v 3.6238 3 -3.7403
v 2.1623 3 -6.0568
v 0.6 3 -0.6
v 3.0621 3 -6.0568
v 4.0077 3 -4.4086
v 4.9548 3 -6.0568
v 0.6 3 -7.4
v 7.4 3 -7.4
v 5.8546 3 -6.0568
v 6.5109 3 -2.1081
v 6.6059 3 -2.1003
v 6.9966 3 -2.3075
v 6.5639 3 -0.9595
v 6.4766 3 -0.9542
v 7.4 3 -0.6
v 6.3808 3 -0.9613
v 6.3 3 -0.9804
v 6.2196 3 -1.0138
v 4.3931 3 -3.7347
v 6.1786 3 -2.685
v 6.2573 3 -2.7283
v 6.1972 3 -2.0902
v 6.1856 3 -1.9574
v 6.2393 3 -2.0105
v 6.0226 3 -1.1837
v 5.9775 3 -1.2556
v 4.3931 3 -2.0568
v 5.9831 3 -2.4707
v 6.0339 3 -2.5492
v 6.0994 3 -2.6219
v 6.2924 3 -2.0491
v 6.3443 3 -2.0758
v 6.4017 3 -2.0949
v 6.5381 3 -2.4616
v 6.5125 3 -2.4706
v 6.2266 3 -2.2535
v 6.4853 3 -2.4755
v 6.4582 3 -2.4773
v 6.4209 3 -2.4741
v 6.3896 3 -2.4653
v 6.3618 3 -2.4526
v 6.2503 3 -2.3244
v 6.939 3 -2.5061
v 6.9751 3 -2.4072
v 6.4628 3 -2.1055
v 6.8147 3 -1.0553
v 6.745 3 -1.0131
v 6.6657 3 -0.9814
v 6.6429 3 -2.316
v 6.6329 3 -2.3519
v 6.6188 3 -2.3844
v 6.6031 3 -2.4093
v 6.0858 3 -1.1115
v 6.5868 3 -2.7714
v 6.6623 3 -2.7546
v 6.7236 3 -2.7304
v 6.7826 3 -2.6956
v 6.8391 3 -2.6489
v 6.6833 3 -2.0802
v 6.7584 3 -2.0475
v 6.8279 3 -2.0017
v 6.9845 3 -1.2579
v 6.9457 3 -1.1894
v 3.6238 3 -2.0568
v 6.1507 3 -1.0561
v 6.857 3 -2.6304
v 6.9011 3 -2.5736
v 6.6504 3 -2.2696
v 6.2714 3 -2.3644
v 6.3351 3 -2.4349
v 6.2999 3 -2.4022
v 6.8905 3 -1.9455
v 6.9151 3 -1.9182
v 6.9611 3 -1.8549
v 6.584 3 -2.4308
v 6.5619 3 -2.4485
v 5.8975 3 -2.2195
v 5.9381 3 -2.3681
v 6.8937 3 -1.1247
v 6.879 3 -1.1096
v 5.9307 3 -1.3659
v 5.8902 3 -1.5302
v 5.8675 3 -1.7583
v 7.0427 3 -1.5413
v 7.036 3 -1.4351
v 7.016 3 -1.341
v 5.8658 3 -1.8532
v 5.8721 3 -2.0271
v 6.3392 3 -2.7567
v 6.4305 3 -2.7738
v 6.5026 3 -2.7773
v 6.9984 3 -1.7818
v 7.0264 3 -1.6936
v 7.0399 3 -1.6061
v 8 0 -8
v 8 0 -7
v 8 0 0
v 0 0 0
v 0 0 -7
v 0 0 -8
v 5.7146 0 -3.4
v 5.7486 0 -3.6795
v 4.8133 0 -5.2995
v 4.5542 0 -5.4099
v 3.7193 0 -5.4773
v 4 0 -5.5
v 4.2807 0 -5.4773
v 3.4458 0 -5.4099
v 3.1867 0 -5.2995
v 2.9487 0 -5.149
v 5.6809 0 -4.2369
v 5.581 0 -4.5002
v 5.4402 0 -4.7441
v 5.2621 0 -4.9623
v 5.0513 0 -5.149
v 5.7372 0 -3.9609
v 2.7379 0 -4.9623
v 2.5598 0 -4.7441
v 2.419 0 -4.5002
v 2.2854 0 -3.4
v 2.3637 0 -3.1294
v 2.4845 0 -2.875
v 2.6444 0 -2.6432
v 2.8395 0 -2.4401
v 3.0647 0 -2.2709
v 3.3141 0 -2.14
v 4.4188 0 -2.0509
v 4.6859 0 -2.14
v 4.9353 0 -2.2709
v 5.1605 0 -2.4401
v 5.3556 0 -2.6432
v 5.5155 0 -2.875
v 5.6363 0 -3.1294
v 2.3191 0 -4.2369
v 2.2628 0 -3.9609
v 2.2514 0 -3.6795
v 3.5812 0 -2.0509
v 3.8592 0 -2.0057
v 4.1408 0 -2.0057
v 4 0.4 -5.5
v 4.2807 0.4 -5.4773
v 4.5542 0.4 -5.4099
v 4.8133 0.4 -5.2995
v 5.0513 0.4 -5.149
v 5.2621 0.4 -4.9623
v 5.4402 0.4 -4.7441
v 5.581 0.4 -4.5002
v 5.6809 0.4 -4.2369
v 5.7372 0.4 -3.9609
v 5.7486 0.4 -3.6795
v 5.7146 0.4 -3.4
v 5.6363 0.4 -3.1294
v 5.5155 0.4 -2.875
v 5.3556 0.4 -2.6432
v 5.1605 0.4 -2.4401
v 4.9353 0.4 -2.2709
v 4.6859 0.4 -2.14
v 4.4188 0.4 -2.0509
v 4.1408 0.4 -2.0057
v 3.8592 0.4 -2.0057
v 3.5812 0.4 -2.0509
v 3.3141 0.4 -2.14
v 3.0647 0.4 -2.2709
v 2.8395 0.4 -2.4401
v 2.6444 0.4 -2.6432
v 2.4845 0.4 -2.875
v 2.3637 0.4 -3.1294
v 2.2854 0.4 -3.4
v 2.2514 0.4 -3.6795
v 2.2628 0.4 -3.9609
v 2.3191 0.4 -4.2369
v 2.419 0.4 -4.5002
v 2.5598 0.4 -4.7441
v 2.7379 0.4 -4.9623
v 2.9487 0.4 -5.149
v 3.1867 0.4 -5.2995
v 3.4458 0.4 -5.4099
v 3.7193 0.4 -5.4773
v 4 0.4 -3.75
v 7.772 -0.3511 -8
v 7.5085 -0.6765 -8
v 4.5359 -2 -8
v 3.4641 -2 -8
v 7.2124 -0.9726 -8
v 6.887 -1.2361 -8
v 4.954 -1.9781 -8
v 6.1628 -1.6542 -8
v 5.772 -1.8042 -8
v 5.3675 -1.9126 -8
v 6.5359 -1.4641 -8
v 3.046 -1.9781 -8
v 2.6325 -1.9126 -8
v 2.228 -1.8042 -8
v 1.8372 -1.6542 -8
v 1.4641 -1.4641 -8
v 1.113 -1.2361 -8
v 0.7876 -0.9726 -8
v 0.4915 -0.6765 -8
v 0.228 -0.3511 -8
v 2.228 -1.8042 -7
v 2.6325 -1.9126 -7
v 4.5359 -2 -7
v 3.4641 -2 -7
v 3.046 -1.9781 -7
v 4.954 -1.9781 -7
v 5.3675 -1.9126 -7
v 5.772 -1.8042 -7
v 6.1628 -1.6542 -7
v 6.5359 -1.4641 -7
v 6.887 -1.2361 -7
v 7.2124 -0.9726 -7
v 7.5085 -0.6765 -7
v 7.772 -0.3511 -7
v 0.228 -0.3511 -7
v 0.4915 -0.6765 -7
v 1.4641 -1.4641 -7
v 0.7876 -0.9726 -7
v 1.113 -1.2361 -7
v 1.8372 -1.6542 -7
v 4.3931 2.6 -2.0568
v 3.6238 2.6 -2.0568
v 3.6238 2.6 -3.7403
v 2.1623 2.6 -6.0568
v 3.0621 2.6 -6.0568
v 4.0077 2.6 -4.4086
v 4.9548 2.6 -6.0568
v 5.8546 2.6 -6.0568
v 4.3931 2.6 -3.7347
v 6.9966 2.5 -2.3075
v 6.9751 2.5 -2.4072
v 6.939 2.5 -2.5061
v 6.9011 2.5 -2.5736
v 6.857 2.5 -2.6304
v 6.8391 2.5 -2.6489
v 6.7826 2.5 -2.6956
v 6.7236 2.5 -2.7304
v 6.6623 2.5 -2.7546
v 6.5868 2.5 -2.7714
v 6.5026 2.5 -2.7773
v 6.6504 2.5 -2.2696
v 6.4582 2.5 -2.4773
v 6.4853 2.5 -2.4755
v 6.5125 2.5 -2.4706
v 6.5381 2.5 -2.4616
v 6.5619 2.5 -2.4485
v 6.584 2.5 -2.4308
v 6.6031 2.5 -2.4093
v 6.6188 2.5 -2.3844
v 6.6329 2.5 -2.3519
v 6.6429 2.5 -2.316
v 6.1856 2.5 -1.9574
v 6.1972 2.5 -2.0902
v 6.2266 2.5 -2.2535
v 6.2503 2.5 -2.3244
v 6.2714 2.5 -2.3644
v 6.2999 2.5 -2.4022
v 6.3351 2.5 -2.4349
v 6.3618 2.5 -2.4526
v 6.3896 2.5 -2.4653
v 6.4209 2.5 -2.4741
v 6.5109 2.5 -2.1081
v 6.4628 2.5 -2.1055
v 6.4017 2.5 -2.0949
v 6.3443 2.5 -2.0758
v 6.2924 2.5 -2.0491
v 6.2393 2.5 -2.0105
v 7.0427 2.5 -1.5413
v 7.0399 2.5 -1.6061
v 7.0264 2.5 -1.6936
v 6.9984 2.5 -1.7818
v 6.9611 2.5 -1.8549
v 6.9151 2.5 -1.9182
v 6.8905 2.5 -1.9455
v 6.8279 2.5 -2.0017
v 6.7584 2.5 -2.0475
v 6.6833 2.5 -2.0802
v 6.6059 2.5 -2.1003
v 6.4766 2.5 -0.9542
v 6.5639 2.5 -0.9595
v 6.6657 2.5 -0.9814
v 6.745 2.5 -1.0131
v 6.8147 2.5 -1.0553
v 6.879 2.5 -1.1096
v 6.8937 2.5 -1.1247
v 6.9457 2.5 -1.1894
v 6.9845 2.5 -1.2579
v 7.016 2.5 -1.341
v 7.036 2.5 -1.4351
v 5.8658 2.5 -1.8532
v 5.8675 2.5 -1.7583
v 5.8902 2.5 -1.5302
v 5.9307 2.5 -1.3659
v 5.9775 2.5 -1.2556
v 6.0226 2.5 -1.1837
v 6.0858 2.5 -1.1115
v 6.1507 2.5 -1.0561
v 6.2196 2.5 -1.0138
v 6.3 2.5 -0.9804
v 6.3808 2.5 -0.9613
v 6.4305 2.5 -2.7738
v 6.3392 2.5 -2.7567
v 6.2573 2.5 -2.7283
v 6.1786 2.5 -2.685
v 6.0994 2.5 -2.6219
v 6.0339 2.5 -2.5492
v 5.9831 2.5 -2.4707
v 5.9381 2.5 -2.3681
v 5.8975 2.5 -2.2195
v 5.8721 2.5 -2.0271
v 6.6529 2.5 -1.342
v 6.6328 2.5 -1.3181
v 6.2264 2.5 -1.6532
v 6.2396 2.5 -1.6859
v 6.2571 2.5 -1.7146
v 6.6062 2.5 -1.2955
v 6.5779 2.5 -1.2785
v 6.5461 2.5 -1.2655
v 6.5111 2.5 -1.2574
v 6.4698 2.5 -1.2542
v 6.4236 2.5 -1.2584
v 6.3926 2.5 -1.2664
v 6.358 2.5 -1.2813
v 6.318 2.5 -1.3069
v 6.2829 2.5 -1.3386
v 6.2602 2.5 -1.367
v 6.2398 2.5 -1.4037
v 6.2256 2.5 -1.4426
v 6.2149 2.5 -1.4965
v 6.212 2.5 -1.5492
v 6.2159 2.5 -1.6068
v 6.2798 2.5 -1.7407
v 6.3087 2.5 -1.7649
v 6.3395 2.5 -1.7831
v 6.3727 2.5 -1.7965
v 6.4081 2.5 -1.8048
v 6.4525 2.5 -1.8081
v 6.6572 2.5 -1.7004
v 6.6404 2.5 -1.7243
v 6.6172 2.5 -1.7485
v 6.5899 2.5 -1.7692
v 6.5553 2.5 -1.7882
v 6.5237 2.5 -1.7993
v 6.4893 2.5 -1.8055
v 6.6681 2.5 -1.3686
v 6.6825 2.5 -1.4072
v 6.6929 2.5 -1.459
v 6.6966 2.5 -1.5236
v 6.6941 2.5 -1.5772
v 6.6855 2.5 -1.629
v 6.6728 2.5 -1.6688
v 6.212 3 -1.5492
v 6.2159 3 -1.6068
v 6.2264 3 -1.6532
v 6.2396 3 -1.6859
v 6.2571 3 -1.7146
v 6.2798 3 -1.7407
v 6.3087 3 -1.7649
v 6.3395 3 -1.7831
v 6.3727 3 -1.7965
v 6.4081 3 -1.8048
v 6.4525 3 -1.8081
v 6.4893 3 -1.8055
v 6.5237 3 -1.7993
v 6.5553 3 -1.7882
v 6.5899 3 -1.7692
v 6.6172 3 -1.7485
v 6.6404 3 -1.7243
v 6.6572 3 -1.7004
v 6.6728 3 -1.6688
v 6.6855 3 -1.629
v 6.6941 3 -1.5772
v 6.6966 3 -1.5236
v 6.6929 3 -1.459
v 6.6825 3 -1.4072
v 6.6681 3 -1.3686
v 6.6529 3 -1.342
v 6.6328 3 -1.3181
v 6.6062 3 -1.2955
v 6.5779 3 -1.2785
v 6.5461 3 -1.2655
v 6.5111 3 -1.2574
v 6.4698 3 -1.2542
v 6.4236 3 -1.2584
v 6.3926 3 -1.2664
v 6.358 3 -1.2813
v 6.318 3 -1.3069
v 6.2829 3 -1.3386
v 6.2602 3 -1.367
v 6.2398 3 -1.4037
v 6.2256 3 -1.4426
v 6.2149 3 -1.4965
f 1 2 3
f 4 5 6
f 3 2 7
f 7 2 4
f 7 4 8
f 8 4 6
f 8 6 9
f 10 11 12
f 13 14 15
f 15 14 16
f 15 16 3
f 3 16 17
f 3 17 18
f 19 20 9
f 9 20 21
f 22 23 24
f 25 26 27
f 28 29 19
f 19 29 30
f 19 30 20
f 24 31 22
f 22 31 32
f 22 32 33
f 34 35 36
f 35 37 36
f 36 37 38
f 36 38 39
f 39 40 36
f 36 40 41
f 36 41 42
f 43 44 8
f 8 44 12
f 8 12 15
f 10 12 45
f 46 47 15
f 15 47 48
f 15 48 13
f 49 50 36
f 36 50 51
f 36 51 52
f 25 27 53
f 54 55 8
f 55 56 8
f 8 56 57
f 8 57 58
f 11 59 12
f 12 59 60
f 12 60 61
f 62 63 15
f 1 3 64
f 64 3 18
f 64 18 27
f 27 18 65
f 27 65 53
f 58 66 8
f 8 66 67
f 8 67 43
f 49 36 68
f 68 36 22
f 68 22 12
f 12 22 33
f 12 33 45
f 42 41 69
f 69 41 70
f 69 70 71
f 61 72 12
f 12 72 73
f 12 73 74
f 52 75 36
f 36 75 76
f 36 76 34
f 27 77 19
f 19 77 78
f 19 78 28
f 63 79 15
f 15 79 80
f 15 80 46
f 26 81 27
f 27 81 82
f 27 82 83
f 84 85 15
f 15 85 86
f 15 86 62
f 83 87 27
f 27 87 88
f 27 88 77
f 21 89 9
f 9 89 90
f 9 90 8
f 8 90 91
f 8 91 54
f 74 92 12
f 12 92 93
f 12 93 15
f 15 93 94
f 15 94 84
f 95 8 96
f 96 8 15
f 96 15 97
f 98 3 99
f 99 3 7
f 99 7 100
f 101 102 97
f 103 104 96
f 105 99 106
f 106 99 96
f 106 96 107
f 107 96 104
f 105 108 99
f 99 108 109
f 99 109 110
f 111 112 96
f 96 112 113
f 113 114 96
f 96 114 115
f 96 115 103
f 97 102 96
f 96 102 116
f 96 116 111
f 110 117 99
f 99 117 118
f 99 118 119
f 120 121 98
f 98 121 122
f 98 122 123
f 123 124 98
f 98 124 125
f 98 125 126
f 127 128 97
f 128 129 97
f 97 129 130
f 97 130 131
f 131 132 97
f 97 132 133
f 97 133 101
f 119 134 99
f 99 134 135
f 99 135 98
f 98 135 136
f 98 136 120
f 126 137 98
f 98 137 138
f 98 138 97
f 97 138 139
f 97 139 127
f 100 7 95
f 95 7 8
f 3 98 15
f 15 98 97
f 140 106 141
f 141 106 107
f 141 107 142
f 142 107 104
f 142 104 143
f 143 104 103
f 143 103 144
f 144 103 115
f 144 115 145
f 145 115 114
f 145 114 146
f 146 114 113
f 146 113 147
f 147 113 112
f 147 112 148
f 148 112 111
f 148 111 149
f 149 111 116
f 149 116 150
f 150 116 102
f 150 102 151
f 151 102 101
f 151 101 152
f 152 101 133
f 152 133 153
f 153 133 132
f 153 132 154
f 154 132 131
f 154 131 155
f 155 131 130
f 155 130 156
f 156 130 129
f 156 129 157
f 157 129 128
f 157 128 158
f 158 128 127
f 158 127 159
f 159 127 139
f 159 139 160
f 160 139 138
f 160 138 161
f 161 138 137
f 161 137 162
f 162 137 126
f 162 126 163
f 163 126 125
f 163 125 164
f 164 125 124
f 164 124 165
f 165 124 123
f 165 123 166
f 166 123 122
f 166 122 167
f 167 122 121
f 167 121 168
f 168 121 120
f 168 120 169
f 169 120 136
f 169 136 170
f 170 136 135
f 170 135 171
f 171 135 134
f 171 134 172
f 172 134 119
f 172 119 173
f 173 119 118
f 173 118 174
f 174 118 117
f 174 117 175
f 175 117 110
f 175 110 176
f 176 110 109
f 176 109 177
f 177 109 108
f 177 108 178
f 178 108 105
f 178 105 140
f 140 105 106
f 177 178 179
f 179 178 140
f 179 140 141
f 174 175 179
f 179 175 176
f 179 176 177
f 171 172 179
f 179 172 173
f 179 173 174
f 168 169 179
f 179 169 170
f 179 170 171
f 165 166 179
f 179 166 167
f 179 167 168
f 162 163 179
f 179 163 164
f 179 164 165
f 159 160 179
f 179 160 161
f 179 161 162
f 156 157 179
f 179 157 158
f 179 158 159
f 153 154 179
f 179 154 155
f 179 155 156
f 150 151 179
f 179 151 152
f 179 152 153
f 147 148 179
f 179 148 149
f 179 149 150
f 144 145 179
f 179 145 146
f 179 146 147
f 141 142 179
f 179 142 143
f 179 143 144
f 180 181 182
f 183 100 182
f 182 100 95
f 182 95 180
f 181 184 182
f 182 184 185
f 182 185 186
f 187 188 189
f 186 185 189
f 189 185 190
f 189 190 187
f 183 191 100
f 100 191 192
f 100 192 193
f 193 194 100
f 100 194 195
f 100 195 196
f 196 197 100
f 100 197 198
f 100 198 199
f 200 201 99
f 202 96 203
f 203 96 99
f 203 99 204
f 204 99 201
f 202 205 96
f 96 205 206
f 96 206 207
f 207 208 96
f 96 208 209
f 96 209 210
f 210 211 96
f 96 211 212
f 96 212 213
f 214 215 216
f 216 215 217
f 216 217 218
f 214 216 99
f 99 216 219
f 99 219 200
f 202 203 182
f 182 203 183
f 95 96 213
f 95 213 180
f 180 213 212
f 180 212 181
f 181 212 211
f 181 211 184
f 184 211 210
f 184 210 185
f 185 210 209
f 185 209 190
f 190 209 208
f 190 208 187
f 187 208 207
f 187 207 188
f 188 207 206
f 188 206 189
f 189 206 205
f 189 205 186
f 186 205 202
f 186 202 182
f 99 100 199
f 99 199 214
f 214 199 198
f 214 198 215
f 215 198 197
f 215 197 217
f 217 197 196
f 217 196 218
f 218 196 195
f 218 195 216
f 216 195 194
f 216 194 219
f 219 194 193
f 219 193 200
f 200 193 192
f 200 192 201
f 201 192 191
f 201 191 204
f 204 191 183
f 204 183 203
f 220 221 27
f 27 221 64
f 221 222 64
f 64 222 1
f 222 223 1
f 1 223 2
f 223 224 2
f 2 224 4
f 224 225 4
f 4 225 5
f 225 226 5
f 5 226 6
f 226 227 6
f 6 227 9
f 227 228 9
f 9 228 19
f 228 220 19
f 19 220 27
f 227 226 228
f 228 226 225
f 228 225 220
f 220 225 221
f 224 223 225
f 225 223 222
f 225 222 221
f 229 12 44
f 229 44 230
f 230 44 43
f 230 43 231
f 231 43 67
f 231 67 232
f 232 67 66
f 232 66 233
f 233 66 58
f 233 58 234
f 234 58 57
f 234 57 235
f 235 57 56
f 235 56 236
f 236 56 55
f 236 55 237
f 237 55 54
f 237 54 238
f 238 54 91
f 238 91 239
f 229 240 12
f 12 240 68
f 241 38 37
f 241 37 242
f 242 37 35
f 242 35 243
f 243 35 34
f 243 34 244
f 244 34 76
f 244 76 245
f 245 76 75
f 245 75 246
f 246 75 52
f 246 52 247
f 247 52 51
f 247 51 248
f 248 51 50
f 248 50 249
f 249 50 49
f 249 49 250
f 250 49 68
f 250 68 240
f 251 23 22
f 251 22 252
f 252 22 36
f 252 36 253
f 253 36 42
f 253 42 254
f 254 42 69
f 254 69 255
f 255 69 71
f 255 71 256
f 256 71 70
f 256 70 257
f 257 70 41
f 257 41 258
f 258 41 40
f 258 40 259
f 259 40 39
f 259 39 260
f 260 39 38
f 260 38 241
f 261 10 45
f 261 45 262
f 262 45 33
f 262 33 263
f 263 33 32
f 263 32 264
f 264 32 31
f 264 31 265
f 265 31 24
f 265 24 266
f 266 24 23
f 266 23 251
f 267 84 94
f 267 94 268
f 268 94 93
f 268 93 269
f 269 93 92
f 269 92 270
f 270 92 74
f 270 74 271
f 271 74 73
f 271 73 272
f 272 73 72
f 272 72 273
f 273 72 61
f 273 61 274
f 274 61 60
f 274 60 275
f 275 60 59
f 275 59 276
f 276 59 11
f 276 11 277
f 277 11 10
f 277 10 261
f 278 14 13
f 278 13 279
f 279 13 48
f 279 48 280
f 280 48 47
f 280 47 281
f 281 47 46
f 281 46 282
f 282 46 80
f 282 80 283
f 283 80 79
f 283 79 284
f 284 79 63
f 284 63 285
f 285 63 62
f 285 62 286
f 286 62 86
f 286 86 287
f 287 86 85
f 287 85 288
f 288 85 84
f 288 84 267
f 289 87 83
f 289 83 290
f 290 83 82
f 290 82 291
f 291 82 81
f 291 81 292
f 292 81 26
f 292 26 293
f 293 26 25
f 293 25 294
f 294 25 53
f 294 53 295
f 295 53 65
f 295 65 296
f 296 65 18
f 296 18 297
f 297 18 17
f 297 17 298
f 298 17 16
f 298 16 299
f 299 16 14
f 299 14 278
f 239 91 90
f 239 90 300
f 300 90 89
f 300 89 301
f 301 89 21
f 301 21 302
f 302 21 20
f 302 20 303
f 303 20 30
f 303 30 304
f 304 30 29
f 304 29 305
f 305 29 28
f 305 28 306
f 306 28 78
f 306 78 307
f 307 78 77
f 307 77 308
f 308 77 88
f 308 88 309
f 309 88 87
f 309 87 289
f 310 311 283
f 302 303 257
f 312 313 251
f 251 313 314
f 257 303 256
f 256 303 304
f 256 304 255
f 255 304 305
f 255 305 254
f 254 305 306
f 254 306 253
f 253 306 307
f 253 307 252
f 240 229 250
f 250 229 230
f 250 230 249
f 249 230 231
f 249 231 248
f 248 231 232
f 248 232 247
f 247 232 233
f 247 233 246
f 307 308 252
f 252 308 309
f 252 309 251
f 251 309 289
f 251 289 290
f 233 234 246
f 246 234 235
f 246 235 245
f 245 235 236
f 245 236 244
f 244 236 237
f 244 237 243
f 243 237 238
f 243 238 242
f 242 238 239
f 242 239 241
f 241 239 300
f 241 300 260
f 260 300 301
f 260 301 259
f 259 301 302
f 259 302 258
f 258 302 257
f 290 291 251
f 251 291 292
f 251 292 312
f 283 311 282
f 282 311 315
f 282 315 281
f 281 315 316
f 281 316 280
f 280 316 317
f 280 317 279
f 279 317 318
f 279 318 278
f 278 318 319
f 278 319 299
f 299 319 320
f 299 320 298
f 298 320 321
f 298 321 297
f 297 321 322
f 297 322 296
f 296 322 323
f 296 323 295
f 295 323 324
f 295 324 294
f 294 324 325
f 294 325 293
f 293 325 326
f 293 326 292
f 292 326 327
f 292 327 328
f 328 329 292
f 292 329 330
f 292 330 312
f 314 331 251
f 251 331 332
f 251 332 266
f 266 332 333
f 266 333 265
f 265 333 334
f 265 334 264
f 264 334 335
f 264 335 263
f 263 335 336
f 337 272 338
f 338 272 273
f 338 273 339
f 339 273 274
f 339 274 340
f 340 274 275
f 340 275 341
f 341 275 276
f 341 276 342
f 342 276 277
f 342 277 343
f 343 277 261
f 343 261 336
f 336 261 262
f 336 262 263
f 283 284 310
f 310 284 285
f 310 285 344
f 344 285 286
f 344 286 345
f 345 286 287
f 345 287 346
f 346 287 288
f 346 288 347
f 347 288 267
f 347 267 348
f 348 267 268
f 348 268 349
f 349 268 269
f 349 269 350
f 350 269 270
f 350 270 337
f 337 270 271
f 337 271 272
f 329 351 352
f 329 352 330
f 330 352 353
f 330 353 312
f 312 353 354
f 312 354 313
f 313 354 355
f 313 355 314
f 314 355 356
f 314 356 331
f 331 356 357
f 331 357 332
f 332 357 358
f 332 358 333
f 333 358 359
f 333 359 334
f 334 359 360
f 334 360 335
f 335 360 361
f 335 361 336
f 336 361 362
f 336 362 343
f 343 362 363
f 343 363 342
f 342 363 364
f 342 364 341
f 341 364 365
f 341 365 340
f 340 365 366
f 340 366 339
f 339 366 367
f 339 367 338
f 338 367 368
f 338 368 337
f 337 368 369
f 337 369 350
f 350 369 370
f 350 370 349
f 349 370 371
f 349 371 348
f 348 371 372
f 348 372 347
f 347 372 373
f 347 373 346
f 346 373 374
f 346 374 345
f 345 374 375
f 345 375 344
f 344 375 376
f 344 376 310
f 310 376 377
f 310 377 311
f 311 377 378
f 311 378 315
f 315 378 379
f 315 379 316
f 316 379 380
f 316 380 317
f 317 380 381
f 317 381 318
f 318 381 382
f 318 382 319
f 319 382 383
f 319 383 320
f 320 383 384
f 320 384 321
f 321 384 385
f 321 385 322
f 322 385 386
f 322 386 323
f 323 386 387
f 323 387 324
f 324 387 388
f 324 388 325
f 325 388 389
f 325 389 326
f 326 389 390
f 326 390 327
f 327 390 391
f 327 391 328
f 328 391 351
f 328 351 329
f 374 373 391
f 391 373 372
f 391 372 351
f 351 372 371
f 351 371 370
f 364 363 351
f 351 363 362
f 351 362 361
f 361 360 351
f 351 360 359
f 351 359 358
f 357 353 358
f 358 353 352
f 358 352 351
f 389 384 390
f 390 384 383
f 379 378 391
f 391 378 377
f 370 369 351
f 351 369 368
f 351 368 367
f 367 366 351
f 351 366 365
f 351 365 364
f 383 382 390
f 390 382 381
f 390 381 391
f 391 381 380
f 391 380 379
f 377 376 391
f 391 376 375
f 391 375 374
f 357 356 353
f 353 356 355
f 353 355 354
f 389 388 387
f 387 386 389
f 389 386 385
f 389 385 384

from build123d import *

# Parameters (mm, degrees)
SKETCH1_W               = 8
SKETCH1_H               = 8
BOSS_EXTRUDE1_DEPTH     = 3
CUT_EXTRUDE1_DEPTH      = 12.704699911
CUT_EXTRUDE1_DEPTH_BACK = 12.704699911
CUT_EXTRUDE2_DEPTH      = 11
SKETCH4_R               = 1.75
CUT_EXTRUDE3_DEPTH      = 0.4
SKETCH5_W               = 8
SKETCH5_H               = 1
BOSS_EXTRUDE2_DEPTH     = 2
FILLET1_R               = 4
CUT_EXTRUDE4_DEPTH      = 0.4
CUT_EXTRUDE5_DEPTH      = 0.5


with BuildPart() as part:
    # Sketch1 → Boss-Extrude1 (new body)
    with BuildSketch(Plane(origin=(0, 0, 0), x_dir=(1, 0, 0), z_dir=(0, 1, 0))):
        with Locations((4, 4)):
            Rectangle(SKETCH1_W, SKETCH1_H)
    extrude(amount=BOSS_EXTRUDE1_DEPTH)

    # Sketch2 → Cut-Extrude1 (cut, two sides: drawn at the far end of the back side and taken through both)
    with BuildSketch(Plane.XY.offset(-CUT_EXTRUDE1_DEPTH_BACK)):
        Polygon((0, 0), (0.6, 3), (0, 3), align=None)
        Polygon((8, 0), (7.4, 3), (8, 3), align=None)
    extrude(amount=CUT_EXTRUDE1_DEPTH + CUT_EXTRUDE1_DEPTH_BACK, mode=Mode.SUBTRACT)

    # Sketch3 → Cut-Extrude2 (cut)
    with BuildSketch(Plane(origin=(0, 0, 0), x_dir=(0, 0, -1), z_dir=(1, 0, 0))):
        Polygon((0, 0), (0.6, 3), (0, 3), align=None)
        Polygon((8, 3), (7.4, 3), (8, 0), align=None)
    extrude(amount=CUT_EXTRUDE2_DEPTH, mode=Mode.SUBTRACT)

    # Sketch4 → Cut-Extrude3 (cut)
    with BuildSketch(Plane.XZ):
        with Locations(Location((4, -3.75, 0), (0, 0, 270))):
            Circle(SKETCH4_R)
    extrude(amount=-CUT_EXTRUDE3_DEPTH, mode=Mode.SUBTRACT)

    # Sketch5 → Boss-Extrude2 (add)
    with BuildSketch(Plane.XZ):
        with Locations((4, -7.5)):
            Rectangle(SKETCH5_W, SKETCH5_H)
    extrude(amount=BOSS_EXTRUDE2_DEPTH)

    # Fillet1
    # the kernel refuses this fillet: 4 mm, written as the material it takes off along each edge
    with BuildSketch(Plane(origin=(8, -2, -16.660254038), x_dir=(0, 1, 0), z_dir=(0, 0, 1)), Plane(origin=(0, -2, 1.660254038), x_dir=(0, 1, 0), z_dir=(0, 0, -1))) as fillet1_piece_1:
        with BuildLine():
            CenterArc((4, 3.464101615), FILLET1_R, 180, 60)
            Line((0, 3.464101615), (-0.08, 3.464101615))
            Line((-0.08, 3.464101615), (-0.08, 0))
            Line((-0.08, 0), (0, -0.08))
            ThreePointArc((0, -0.08), (1, -0.08), (1.96, -0.069282032))
            Line((1.96, -0.069282032), (2, 0))
        make_face()
    extrude(amount=18.320508076, mode=Mode.SUBTRACT)

    # Sketch6 → Cut-Extrude4 (cut)
    with BuildSketch(Plane(origin=(0, 3, 0), x_dir=(1, 0, 0), z_dir=(0, 1, 0))):
        Polygon((3.623842243, 2.056832464), (3.623842243, 3.740326053), (2.162303782, 6.056832464), (3.062143525, 6.056832464), (4.007656346, 4.408595284), (4.95477173, 6.056832464), (5.854611474, 6.056832464), (4.393073013, 3.734717079), (4.393073013, 2.056832464), align=None)
    extrude(amount=-CUT_EXTRUDE4_DEPTH, mode=Mode.SUBTRACT)

    # Sketch7 → Cut-Extrude5 (cut)
    with BuildSketch(Plane(origin=(0, 3, 0), x_dir=(1, 0, 0), z_dir=(0, 1, 0))):
        with BuildLine():
            Line((6.99657775, 2.307478491), (6.650423904, 2.269617914))
            add(Edge.make_bspline(
                [(6.650423904, 2.269617914), (6.648104786, 2.286290214), (6.643740629, 2.317664439), (6.630814222, 2.360960848), (6.6128192, 2.397384178), (6.589720846, 2.426985356), (6.562208273, 2.449767653), (6.53085918, 2.465955864), (6.495693494, 2.475565581), (6.471038508, 2.476713937), (6.458236404, 2.477310221)],
                knots=[0, 0, 0, 0, 1.280716388, 2.410074291, 3.425374506, 4.35753932, 5.248331359, 6.12451615, 7.026154803, 8, 8, 8, 8], degree=3))
            add(Edge.make_bspline(
                [(6.458236404, 2.477310221), (6.449554942, 2.477097941), (6.432279271, 2.476675513), (6.407115159, 2.471312362), (6.382853927, 2.463353411), (6.359693582, 2.452081234), (6.337518567, 2.437536581), (6.316665994, 2.419545601), (6.296177185, 2.39905664), (6.277258092, 2.37431526), (6.259107425, 2.34501973), (6.243478966, 2.309156475), (6.229549311, 2.266758815), (6.217622545, 2.217619097), (6.206799126, 2.162049229), (6.197926997, 2.099824257), (6.190827571, 2.030888275), (6.1874217, 1.982610246), (6.18564025, 1.957358298)],
                knots=[0, 0, 0, 0, 0.642458078, 1.278459126, 1.898279436, 2.531842133, 3.181731979, 3.858193002, 4.57010051, 5.325711302, 6.161524323, 7.118599443, 8.217371811, 9.466325973, 10.864147948, 12.412648259, 14.123626419, 16, 16, 16, 16], degree=3))
            add(Edge.make_bspline(
                [(6.18564025, 1.957358298), (6.196703374, 1.969374309), (6.218396997, 1.992936442), (6.254393564, 2.023656049), (6.292105324, 2.049919261), (6.331942634, 2.071465901), (6.374122941, 2.087500286), (6.417882183, 2.099674887), (6.463793169, 2.1064945), (6.494994081, 2.107544715), (6.510880634, 2.108079452)],
                knots=[0, 0, 0, 0, 1.057745406, 2.074127497, 3.059409796, 4.031705469, 5.000875988, 5.977809597, 6.970362319, 8, 8, 8, 8], degree=3))
            add(Edge.make_bspline(
                [(6.510880634, 2.108079452), (6.528809934, 2.107563089), (6.564213931, 2.106543456), (6.616372239, 2.099391957), (6.666421561, 2.086532277), (6.714588312, 2.069136373), (6.761110551, 2.047230594), (6.805098359, 2.019501147), (6.847242227, 1.987169858), (6.886962554, 1.950231753), (6.923455982, 1.909566001), (6.95567607, 1.865643773), (6.982192143, 1.818330938), (7.00486021, 1.76868676), (7.021726117, 1.715731209), (7.033968982, 1.660226315), (7.04127711, 1.601662587), (7.042239139, 1.561706039), (7.042731596, 1.541252529)],
                knots=[0, 0, 0, 0, 0.99135015, 1.957564468, 2.903754199, 3.843479786, 4.78583385, 5.741106244, 6.712813504, 7.719198368, 8.735844933, 9.730198001, 10.724351158, 11.729813921, 12.742848014, 13.790983496, 14.86921809, 16, 16, 16, 16], degree=3))
            add(Edge.make_bspline(
                [(7.042731596, 1.541252529), (7.042231952, 1.519599685), (7.041257525, 1.477371451), (7.034085066, 1.415527203), (7.021415455, 1.357153196), (7.004106031, 1.301781092), (6.981716795, 1.249849655), (6.954594052, 1.200930916), (6.921819947, 1.155860856), (6.884881845, 1.114033218), (6.84370317, 1.076707467), (6.799818397, 1.043655074), (6.752740779, 1.016179585), (6.703166183, 0.993054256), (6.650243128, 0.9760833), (6.594904638, 0.963355935), (6.536700741, 0.955593381), (6.496962304, 0.954693712), (6.476625827, 0.954233298)],
                knots=[0, 0, 0, 0, 1.13287417, 2.209376133, 3.25169942, 4.254157582, 5.240146322, 6.205890558, 7.174579019, 8.150183866, 9.1206468, 10.07783463, 11.019441811, 11.967766696, 12.934309213, 13.921380422, 14.936249089, 16, 16, 16, 16], degree=3))
            add(Edge.make_bspline(
                [(6.476625827, 0.954233298), (6.454835686, 0.954842926), (6.411992392, 0.956041562), (6.349274568, 0.965905733), (6.289647802, 0.982594351), (6.233119501, 1.005900716), (6.179219819, 1.035216515), (6.128449255, 1.071632083), (6.080942348, 1.114800151), (6.036070744, 1.164136126), (5.995238787, 1.221123075), (5.960465944, 1.286988003), (5.930975089, 1.361009558), (5.906965213, 1.443377578), (5.888431321, 1.534085529), (5.875498792, 1.633141016), (5.86690889, 1.740380226), (5.866183985, 1.814672002), (5.865808519, 1.853151567)],
                knots=[0, 0, 0, 0, 0.852151446, 1.675481364, 2.476404467, 3.269281233, 4.062617998, 4.871616733, 5.707301388, 6.56955125, 7.476395267, 8.442009786, 9.475854496, 10.58877921, 11.794095973, 13.094195288, 14.494932947, 16, 16, 16, 16], degree=3))
            add(Edge.make_bspline(
                [(5.865808519, 1.853151567), (5.866346697, 1.892590697), (5.867386586, 1.968796599), (5.875754473, 2.078827487), (5.889046125, 2.180436336), (5.908408745, 2.273394012), (5.933175033, 2.357893394), (5.963200156, 2.434104295), (5.99923844, 2.501750812), (6.041138584, 2.560612949), (6.087240817, 2.61177964), (6.136777869, 2.655945181), (6.189560624, 2.693536639), (6.245587817, 2.724459089), (6.305319384, 2.747901225), (6.368188753, 2.764829378), (6.434301522, 2.775708833), (6.479587723, 2.776770851), (6.502587365, 2.777310221)],
                knots=[0, 0, 0, 0, 1.491699013, 2.882321987, 4.171520357, 5.365488089, 6.470299549, 7.49861535, 8.458736801, 9.361983288, 10.224742848, 11.058789056, 11.867429157, 12.671146298, 13.473202851, 14.288259215, 15.130652936, 16, 16, 16, 16], degree=3))
            add(Edge.make_bspline(
                [(6.502587365, 2.777310221), (6.518832845, 2.777017956), (6.550590682, 2.776446616), (6.597136362, 2.770379458), (6.641540508, 2.76110179), (6.683919501, 2.748259344), (6.723974963, 2.731060825), (6.761865954, 2.710109046), (6.797719857, 2.685460752), (6.831350121, 2.657274635), (6.862486078, 2.625465393), (6.890601127, 2.589961055), (6.915881459, 2.551190115), (6.938437714, 2.509184749), (6.957357529, 2.46354265), (6.973622233, 2.414622738), (6.98699882, 2.362319913), (6.993336088, 2.326037695), (6.99657775, 2.307478491)],
                knots=[0, 0, 0, 0, 1.036027791, 2.025301876, 2.989435482, 3.928225244, 4.845595412, 5.765526461, 6.686607585, 7.61747015, 8.561102691, 9.521661062, 10.50224679, 11.510949117, 12.559251378, 13.650572309, 14.798212656, 16, 16, 16, 16], degree=3))
        make_face()
        with BuildLine():
            add(Edge.make_bspline(
                [(6.211962365, 1.549185221), (6.212093793, 1.537753077), (6.212350595, 1.515415322), (6.216561681, 1.483001611), (6.222614755, 1.452614338), (6.230767911, 1.42408476), (6.242068736, 1.397844656), (6.255476173, 1.373367715), (6.271335314, 1.350875727), (6.295669246, 1.324486058), (6.329294099, 1.29676891), (6.373421783, 1.272086886), (6.420703408, 1.256744198), (6.453316703, 1.255075433), (6.469774865, 1.254233298)],
                knots=[0, 0, 0, 0, 0.93816693, 1.833124408, 2.679057427, 3.481731691, 4.264557977, 5.020023694, 5.770442996, 6.518065735, 7.962605608, 9.32780964, 10.651490302, 12, 12, 12, 12], degree=3))
            add(Edge.make_bspline(
                [(6.469774865, 1.254233298), (6.485365796, 1.254933043), (6.51571185, 1.256295021), (6.559046727, 1.268742487), (6.598409917, 1.288373431), (6.627266187, 1.311420354), (6.647387039, 1.333836313), (6.660907792, 1.353494474), (6.671913698, 1.375919542), (6.680911589, 1.400742183), (6.688159323, 1.427866383), (6.693107691, 1.457564676), (6.69591447, 1.48975573), (6.696351403, 1.512040132), (6.69657775, 1.52358426)],
                knots=[0, 0, 0, 0, 1.399678333, 2.724321989, 4.020062797, 5.33532049, 6.016755754, 6.724441967, 7.473839083, 8.257094862, 9.096253071, 9.995581596, 10.961638663, 12, 12, 12, 12], degree=3))
            add(Edge.make_bspline(
                [(6.69657775, 1.52358426), (6.696384678, 1.535490976), (6.696011412, 1.558510238), (6.692745041, 1.591780733), (6.687401372, 1.622537963), (6.679930507, 1.650999261), (6.669817892, 1.676783929), (6.657887501, 1.700412041), (6.643402955, 1.721242874), (6.621876525, 1.745742616), (6.590576263, 1.770429427), (6.548753213, 1.792915191), (6.501874013, 1.805662518), (6.469248141, 1.807258544), (6.452467173, 1.808079452)],
                knots=[0, 0, 0, 0, 1.008384627, 1.949510571, 2.828269698, 3.650667555, 4.437180943, 5.170285793, 5.887596972, 6.580056709, 7.926803404, 9.238379296, 10.579573008, 12, 12, 12, 12], degree=3))
            add(Edge.make_bspline(
                [(6.452467173, 1.808079452), (6.436151813, 1.807414866), (6.404464825, 1.806124136), (6.358926875, 1.793162443), (6.31725918, 1.772538153), (6.286568407, 1.748308757), (6.264936989, 1.725473324), (6.25076935, 1.706030549), (6.238437114, 1.684862342), (6.228698053, 1.661421349), (6.221189386, 1.636147459), (6.215803903, 1.608867965), (6.212544961, 1.579673333), (6.212160051, 1.559530412), (6.211962365, 1.549185221)],
                knots=[0, 0, 0, 0, 1.469034193, 2.853094746, 4.235454457, 5.641396914, 6.354997179, 7.06867986, 7.807229614, 8.560602297, 9.353235934, 10.182779392, 11.06669468, 12, 12, 12, 12], degree=3))
        make_face(mode=Mode.SUBTRACT)
    extrude(amount=-CUT_EXTRUDE5_DEPTH, mode=Mode.SUBTRACT)


solid = part.part
